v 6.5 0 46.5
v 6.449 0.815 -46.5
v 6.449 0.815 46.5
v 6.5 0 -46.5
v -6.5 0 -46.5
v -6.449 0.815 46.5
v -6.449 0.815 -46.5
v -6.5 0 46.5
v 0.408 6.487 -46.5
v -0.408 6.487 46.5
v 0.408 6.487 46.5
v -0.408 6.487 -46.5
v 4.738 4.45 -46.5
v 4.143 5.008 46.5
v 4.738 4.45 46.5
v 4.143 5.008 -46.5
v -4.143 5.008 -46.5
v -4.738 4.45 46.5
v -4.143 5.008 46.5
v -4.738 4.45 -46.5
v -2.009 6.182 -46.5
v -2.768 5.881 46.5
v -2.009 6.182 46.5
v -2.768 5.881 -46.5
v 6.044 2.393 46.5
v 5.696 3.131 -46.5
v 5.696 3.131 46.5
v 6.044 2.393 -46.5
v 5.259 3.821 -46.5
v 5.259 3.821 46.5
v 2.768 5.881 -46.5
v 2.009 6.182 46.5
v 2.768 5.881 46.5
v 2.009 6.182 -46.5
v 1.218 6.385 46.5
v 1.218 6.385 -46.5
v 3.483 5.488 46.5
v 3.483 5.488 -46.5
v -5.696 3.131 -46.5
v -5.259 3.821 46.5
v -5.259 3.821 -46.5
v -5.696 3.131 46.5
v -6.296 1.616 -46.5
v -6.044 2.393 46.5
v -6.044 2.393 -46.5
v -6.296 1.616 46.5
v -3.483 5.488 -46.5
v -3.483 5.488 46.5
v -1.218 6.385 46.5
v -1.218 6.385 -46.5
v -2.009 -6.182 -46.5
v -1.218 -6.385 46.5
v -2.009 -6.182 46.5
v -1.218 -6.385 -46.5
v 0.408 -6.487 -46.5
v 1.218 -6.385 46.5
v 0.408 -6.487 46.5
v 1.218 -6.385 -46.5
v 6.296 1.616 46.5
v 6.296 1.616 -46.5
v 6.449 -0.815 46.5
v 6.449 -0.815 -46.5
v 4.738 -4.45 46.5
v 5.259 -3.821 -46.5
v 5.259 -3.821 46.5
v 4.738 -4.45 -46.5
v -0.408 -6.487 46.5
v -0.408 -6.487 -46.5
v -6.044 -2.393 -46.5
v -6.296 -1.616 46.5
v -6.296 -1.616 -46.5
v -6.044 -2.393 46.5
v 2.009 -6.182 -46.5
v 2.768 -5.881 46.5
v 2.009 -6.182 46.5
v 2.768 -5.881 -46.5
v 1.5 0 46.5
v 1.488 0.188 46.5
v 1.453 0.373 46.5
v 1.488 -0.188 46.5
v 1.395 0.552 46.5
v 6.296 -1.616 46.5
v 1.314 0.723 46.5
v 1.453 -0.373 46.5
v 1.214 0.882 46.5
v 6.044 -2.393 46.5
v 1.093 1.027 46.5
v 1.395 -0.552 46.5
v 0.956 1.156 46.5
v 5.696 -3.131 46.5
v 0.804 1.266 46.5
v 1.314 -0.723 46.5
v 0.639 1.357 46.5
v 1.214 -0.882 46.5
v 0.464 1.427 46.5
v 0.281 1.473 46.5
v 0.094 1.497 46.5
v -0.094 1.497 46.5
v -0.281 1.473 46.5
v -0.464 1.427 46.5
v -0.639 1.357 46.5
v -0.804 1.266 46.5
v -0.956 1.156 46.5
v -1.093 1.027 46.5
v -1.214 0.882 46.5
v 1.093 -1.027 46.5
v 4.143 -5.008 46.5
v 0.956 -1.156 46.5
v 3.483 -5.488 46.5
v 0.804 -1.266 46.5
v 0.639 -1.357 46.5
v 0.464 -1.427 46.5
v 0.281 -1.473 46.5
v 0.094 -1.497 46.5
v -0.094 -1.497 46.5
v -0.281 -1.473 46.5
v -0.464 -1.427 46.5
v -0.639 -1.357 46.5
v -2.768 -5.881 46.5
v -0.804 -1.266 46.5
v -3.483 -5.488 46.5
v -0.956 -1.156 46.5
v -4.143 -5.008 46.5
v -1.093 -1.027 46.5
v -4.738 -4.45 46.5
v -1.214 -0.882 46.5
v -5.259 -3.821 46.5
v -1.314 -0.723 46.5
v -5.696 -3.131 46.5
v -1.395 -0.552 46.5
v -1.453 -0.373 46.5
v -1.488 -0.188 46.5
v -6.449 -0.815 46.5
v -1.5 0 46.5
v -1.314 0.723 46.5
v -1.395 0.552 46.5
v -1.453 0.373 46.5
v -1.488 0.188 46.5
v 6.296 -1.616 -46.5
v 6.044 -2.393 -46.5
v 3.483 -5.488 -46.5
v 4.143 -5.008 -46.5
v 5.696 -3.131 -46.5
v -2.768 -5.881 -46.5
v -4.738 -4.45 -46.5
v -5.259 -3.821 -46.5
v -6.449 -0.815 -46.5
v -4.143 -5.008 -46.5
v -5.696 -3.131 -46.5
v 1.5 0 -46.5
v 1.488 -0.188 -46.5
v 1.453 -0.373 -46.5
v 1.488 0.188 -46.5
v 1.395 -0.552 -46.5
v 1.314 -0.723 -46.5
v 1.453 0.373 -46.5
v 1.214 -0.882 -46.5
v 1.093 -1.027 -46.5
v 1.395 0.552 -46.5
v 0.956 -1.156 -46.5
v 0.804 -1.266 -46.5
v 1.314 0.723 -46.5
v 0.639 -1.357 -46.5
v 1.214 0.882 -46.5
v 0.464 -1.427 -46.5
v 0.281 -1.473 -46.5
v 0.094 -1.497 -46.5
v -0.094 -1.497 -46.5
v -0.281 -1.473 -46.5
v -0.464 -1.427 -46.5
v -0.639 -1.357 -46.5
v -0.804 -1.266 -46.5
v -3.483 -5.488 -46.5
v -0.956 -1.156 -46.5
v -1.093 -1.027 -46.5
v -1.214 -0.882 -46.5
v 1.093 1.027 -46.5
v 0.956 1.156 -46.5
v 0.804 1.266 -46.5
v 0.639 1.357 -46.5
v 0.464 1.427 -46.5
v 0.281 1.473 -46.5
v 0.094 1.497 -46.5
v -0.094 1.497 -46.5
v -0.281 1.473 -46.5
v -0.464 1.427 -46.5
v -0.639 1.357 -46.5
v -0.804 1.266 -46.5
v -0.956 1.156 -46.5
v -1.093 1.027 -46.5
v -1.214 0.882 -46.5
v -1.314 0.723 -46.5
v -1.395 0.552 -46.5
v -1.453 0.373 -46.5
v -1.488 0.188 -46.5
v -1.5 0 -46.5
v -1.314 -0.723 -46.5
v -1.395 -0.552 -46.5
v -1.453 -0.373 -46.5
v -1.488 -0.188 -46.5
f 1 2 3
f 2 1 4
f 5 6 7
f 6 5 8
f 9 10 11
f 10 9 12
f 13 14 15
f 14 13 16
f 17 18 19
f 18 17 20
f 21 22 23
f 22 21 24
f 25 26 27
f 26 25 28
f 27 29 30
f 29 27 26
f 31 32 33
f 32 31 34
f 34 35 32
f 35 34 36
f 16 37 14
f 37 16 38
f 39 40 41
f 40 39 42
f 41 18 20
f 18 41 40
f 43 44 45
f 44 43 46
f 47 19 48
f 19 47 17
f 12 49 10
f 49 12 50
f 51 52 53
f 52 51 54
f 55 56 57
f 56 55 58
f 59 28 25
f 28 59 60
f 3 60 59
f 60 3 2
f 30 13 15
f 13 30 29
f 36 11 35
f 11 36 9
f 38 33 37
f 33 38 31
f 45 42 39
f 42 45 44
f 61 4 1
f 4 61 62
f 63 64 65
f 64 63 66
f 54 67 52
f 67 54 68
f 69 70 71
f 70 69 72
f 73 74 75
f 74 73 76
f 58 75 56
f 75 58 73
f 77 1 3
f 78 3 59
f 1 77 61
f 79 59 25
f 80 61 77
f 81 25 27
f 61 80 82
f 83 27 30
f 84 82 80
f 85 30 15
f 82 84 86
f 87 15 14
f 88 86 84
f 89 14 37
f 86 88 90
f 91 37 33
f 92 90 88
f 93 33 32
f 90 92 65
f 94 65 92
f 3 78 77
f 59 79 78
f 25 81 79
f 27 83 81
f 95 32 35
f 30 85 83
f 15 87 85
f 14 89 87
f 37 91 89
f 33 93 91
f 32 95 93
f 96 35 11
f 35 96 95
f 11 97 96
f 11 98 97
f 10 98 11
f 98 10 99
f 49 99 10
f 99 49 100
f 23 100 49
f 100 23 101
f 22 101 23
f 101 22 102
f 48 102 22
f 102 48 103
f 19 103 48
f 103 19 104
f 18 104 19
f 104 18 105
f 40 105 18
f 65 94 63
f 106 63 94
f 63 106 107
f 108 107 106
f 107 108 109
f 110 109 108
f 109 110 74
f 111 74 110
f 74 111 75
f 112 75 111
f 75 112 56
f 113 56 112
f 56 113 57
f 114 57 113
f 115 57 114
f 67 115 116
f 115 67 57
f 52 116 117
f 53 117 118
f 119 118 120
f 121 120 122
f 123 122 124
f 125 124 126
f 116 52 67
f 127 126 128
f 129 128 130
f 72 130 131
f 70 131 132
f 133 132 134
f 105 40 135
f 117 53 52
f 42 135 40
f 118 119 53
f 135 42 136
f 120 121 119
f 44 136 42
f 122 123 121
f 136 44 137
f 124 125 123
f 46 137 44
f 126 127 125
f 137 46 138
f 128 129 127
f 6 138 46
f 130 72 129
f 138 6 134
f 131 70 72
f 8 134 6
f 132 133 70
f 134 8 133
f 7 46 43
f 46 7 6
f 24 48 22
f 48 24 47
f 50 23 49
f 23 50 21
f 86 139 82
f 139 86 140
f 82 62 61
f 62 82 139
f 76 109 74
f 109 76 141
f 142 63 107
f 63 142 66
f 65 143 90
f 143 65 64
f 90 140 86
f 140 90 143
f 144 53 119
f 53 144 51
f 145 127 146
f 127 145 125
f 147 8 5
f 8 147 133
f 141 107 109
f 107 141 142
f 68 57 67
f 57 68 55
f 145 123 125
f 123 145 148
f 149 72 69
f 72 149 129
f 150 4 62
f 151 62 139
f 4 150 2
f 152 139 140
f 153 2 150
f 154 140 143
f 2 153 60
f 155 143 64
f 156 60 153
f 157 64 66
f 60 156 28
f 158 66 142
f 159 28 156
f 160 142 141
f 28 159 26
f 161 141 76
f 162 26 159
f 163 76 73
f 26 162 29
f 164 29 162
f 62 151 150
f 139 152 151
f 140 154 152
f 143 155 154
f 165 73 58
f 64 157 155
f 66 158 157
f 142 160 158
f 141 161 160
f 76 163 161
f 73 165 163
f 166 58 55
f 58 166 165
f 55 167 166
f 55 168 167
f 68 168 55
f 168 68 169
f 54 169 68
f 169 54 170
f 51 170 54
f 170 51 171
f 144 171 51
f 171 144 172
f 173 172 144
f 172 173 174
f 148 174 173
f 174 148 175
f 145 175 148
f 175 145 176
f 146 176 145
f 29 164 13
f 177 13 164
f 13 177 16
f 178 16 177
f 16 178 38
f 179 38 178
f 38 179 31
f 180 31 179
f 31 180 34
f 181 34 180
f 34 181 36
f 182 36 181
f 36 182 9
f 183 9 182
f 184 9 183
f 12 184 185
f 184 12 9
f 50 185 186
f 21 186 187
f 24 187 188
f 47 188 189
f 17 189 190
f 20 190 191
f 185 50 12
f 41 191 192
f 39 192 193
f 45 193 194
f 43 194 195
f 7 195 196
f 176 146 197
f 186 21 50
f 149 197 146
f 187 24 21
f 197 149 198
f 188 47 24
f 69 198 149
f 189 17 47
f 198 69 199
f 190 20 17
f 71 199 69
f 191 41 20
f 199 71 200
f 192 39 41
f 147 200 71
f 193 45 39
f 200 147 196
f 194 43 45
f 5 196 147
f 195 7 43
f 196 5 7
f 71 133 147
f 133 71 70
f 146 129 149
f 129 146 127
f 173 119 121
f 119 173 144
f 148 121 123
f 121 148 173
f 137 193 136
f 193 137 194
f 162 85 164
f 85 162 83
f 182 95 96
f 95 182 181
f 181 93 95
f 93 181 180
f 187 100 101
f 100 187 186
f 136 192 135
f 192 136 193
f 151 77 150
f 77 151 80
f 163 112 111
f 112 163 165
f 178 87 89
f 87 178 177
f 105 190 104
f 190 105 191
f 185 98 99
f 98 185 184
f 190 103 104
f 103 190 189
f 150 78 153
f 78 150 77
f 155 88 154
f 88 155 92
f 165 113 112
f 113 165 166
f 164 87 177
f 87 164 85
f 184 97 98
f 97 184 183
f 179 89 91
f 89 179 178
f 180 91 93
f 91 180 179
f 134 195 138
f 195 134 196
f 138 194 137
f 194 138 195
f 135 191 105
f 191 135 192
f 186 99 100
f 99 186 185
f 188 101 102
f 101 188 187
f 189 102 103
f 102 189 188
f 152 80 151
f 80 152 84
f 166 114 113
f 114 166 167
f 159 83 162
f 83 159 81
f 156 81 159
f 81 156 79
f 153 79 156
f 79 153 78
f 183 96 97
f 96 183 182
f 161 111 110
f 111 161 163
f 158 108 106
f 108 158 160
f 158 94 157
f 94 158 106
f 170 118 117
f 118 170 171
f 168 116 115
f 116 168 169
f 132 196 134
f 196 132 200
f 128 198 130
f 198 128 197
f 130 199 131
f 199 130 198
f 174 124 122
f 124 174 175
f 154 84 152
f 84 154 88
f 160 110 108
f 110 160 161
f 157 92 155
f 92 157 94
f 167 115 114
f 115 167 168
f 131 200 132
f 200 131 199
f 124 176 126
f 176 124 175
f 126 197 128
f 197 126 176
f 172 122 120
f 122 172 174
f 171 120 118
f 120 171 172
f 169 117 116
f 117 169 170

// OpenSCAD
$fn = 50;


difference() {
	union() {
		translate(v = [0, 0, -46.5000000000]) {
			cylinder(h = 93, r = 6.5000000000);
		}
	}
	union() {
		translate(v = [0, 0, -100.0000000000]) {
			cylinder(h = 200, r = 1.5000000000);
		}
	}
}
